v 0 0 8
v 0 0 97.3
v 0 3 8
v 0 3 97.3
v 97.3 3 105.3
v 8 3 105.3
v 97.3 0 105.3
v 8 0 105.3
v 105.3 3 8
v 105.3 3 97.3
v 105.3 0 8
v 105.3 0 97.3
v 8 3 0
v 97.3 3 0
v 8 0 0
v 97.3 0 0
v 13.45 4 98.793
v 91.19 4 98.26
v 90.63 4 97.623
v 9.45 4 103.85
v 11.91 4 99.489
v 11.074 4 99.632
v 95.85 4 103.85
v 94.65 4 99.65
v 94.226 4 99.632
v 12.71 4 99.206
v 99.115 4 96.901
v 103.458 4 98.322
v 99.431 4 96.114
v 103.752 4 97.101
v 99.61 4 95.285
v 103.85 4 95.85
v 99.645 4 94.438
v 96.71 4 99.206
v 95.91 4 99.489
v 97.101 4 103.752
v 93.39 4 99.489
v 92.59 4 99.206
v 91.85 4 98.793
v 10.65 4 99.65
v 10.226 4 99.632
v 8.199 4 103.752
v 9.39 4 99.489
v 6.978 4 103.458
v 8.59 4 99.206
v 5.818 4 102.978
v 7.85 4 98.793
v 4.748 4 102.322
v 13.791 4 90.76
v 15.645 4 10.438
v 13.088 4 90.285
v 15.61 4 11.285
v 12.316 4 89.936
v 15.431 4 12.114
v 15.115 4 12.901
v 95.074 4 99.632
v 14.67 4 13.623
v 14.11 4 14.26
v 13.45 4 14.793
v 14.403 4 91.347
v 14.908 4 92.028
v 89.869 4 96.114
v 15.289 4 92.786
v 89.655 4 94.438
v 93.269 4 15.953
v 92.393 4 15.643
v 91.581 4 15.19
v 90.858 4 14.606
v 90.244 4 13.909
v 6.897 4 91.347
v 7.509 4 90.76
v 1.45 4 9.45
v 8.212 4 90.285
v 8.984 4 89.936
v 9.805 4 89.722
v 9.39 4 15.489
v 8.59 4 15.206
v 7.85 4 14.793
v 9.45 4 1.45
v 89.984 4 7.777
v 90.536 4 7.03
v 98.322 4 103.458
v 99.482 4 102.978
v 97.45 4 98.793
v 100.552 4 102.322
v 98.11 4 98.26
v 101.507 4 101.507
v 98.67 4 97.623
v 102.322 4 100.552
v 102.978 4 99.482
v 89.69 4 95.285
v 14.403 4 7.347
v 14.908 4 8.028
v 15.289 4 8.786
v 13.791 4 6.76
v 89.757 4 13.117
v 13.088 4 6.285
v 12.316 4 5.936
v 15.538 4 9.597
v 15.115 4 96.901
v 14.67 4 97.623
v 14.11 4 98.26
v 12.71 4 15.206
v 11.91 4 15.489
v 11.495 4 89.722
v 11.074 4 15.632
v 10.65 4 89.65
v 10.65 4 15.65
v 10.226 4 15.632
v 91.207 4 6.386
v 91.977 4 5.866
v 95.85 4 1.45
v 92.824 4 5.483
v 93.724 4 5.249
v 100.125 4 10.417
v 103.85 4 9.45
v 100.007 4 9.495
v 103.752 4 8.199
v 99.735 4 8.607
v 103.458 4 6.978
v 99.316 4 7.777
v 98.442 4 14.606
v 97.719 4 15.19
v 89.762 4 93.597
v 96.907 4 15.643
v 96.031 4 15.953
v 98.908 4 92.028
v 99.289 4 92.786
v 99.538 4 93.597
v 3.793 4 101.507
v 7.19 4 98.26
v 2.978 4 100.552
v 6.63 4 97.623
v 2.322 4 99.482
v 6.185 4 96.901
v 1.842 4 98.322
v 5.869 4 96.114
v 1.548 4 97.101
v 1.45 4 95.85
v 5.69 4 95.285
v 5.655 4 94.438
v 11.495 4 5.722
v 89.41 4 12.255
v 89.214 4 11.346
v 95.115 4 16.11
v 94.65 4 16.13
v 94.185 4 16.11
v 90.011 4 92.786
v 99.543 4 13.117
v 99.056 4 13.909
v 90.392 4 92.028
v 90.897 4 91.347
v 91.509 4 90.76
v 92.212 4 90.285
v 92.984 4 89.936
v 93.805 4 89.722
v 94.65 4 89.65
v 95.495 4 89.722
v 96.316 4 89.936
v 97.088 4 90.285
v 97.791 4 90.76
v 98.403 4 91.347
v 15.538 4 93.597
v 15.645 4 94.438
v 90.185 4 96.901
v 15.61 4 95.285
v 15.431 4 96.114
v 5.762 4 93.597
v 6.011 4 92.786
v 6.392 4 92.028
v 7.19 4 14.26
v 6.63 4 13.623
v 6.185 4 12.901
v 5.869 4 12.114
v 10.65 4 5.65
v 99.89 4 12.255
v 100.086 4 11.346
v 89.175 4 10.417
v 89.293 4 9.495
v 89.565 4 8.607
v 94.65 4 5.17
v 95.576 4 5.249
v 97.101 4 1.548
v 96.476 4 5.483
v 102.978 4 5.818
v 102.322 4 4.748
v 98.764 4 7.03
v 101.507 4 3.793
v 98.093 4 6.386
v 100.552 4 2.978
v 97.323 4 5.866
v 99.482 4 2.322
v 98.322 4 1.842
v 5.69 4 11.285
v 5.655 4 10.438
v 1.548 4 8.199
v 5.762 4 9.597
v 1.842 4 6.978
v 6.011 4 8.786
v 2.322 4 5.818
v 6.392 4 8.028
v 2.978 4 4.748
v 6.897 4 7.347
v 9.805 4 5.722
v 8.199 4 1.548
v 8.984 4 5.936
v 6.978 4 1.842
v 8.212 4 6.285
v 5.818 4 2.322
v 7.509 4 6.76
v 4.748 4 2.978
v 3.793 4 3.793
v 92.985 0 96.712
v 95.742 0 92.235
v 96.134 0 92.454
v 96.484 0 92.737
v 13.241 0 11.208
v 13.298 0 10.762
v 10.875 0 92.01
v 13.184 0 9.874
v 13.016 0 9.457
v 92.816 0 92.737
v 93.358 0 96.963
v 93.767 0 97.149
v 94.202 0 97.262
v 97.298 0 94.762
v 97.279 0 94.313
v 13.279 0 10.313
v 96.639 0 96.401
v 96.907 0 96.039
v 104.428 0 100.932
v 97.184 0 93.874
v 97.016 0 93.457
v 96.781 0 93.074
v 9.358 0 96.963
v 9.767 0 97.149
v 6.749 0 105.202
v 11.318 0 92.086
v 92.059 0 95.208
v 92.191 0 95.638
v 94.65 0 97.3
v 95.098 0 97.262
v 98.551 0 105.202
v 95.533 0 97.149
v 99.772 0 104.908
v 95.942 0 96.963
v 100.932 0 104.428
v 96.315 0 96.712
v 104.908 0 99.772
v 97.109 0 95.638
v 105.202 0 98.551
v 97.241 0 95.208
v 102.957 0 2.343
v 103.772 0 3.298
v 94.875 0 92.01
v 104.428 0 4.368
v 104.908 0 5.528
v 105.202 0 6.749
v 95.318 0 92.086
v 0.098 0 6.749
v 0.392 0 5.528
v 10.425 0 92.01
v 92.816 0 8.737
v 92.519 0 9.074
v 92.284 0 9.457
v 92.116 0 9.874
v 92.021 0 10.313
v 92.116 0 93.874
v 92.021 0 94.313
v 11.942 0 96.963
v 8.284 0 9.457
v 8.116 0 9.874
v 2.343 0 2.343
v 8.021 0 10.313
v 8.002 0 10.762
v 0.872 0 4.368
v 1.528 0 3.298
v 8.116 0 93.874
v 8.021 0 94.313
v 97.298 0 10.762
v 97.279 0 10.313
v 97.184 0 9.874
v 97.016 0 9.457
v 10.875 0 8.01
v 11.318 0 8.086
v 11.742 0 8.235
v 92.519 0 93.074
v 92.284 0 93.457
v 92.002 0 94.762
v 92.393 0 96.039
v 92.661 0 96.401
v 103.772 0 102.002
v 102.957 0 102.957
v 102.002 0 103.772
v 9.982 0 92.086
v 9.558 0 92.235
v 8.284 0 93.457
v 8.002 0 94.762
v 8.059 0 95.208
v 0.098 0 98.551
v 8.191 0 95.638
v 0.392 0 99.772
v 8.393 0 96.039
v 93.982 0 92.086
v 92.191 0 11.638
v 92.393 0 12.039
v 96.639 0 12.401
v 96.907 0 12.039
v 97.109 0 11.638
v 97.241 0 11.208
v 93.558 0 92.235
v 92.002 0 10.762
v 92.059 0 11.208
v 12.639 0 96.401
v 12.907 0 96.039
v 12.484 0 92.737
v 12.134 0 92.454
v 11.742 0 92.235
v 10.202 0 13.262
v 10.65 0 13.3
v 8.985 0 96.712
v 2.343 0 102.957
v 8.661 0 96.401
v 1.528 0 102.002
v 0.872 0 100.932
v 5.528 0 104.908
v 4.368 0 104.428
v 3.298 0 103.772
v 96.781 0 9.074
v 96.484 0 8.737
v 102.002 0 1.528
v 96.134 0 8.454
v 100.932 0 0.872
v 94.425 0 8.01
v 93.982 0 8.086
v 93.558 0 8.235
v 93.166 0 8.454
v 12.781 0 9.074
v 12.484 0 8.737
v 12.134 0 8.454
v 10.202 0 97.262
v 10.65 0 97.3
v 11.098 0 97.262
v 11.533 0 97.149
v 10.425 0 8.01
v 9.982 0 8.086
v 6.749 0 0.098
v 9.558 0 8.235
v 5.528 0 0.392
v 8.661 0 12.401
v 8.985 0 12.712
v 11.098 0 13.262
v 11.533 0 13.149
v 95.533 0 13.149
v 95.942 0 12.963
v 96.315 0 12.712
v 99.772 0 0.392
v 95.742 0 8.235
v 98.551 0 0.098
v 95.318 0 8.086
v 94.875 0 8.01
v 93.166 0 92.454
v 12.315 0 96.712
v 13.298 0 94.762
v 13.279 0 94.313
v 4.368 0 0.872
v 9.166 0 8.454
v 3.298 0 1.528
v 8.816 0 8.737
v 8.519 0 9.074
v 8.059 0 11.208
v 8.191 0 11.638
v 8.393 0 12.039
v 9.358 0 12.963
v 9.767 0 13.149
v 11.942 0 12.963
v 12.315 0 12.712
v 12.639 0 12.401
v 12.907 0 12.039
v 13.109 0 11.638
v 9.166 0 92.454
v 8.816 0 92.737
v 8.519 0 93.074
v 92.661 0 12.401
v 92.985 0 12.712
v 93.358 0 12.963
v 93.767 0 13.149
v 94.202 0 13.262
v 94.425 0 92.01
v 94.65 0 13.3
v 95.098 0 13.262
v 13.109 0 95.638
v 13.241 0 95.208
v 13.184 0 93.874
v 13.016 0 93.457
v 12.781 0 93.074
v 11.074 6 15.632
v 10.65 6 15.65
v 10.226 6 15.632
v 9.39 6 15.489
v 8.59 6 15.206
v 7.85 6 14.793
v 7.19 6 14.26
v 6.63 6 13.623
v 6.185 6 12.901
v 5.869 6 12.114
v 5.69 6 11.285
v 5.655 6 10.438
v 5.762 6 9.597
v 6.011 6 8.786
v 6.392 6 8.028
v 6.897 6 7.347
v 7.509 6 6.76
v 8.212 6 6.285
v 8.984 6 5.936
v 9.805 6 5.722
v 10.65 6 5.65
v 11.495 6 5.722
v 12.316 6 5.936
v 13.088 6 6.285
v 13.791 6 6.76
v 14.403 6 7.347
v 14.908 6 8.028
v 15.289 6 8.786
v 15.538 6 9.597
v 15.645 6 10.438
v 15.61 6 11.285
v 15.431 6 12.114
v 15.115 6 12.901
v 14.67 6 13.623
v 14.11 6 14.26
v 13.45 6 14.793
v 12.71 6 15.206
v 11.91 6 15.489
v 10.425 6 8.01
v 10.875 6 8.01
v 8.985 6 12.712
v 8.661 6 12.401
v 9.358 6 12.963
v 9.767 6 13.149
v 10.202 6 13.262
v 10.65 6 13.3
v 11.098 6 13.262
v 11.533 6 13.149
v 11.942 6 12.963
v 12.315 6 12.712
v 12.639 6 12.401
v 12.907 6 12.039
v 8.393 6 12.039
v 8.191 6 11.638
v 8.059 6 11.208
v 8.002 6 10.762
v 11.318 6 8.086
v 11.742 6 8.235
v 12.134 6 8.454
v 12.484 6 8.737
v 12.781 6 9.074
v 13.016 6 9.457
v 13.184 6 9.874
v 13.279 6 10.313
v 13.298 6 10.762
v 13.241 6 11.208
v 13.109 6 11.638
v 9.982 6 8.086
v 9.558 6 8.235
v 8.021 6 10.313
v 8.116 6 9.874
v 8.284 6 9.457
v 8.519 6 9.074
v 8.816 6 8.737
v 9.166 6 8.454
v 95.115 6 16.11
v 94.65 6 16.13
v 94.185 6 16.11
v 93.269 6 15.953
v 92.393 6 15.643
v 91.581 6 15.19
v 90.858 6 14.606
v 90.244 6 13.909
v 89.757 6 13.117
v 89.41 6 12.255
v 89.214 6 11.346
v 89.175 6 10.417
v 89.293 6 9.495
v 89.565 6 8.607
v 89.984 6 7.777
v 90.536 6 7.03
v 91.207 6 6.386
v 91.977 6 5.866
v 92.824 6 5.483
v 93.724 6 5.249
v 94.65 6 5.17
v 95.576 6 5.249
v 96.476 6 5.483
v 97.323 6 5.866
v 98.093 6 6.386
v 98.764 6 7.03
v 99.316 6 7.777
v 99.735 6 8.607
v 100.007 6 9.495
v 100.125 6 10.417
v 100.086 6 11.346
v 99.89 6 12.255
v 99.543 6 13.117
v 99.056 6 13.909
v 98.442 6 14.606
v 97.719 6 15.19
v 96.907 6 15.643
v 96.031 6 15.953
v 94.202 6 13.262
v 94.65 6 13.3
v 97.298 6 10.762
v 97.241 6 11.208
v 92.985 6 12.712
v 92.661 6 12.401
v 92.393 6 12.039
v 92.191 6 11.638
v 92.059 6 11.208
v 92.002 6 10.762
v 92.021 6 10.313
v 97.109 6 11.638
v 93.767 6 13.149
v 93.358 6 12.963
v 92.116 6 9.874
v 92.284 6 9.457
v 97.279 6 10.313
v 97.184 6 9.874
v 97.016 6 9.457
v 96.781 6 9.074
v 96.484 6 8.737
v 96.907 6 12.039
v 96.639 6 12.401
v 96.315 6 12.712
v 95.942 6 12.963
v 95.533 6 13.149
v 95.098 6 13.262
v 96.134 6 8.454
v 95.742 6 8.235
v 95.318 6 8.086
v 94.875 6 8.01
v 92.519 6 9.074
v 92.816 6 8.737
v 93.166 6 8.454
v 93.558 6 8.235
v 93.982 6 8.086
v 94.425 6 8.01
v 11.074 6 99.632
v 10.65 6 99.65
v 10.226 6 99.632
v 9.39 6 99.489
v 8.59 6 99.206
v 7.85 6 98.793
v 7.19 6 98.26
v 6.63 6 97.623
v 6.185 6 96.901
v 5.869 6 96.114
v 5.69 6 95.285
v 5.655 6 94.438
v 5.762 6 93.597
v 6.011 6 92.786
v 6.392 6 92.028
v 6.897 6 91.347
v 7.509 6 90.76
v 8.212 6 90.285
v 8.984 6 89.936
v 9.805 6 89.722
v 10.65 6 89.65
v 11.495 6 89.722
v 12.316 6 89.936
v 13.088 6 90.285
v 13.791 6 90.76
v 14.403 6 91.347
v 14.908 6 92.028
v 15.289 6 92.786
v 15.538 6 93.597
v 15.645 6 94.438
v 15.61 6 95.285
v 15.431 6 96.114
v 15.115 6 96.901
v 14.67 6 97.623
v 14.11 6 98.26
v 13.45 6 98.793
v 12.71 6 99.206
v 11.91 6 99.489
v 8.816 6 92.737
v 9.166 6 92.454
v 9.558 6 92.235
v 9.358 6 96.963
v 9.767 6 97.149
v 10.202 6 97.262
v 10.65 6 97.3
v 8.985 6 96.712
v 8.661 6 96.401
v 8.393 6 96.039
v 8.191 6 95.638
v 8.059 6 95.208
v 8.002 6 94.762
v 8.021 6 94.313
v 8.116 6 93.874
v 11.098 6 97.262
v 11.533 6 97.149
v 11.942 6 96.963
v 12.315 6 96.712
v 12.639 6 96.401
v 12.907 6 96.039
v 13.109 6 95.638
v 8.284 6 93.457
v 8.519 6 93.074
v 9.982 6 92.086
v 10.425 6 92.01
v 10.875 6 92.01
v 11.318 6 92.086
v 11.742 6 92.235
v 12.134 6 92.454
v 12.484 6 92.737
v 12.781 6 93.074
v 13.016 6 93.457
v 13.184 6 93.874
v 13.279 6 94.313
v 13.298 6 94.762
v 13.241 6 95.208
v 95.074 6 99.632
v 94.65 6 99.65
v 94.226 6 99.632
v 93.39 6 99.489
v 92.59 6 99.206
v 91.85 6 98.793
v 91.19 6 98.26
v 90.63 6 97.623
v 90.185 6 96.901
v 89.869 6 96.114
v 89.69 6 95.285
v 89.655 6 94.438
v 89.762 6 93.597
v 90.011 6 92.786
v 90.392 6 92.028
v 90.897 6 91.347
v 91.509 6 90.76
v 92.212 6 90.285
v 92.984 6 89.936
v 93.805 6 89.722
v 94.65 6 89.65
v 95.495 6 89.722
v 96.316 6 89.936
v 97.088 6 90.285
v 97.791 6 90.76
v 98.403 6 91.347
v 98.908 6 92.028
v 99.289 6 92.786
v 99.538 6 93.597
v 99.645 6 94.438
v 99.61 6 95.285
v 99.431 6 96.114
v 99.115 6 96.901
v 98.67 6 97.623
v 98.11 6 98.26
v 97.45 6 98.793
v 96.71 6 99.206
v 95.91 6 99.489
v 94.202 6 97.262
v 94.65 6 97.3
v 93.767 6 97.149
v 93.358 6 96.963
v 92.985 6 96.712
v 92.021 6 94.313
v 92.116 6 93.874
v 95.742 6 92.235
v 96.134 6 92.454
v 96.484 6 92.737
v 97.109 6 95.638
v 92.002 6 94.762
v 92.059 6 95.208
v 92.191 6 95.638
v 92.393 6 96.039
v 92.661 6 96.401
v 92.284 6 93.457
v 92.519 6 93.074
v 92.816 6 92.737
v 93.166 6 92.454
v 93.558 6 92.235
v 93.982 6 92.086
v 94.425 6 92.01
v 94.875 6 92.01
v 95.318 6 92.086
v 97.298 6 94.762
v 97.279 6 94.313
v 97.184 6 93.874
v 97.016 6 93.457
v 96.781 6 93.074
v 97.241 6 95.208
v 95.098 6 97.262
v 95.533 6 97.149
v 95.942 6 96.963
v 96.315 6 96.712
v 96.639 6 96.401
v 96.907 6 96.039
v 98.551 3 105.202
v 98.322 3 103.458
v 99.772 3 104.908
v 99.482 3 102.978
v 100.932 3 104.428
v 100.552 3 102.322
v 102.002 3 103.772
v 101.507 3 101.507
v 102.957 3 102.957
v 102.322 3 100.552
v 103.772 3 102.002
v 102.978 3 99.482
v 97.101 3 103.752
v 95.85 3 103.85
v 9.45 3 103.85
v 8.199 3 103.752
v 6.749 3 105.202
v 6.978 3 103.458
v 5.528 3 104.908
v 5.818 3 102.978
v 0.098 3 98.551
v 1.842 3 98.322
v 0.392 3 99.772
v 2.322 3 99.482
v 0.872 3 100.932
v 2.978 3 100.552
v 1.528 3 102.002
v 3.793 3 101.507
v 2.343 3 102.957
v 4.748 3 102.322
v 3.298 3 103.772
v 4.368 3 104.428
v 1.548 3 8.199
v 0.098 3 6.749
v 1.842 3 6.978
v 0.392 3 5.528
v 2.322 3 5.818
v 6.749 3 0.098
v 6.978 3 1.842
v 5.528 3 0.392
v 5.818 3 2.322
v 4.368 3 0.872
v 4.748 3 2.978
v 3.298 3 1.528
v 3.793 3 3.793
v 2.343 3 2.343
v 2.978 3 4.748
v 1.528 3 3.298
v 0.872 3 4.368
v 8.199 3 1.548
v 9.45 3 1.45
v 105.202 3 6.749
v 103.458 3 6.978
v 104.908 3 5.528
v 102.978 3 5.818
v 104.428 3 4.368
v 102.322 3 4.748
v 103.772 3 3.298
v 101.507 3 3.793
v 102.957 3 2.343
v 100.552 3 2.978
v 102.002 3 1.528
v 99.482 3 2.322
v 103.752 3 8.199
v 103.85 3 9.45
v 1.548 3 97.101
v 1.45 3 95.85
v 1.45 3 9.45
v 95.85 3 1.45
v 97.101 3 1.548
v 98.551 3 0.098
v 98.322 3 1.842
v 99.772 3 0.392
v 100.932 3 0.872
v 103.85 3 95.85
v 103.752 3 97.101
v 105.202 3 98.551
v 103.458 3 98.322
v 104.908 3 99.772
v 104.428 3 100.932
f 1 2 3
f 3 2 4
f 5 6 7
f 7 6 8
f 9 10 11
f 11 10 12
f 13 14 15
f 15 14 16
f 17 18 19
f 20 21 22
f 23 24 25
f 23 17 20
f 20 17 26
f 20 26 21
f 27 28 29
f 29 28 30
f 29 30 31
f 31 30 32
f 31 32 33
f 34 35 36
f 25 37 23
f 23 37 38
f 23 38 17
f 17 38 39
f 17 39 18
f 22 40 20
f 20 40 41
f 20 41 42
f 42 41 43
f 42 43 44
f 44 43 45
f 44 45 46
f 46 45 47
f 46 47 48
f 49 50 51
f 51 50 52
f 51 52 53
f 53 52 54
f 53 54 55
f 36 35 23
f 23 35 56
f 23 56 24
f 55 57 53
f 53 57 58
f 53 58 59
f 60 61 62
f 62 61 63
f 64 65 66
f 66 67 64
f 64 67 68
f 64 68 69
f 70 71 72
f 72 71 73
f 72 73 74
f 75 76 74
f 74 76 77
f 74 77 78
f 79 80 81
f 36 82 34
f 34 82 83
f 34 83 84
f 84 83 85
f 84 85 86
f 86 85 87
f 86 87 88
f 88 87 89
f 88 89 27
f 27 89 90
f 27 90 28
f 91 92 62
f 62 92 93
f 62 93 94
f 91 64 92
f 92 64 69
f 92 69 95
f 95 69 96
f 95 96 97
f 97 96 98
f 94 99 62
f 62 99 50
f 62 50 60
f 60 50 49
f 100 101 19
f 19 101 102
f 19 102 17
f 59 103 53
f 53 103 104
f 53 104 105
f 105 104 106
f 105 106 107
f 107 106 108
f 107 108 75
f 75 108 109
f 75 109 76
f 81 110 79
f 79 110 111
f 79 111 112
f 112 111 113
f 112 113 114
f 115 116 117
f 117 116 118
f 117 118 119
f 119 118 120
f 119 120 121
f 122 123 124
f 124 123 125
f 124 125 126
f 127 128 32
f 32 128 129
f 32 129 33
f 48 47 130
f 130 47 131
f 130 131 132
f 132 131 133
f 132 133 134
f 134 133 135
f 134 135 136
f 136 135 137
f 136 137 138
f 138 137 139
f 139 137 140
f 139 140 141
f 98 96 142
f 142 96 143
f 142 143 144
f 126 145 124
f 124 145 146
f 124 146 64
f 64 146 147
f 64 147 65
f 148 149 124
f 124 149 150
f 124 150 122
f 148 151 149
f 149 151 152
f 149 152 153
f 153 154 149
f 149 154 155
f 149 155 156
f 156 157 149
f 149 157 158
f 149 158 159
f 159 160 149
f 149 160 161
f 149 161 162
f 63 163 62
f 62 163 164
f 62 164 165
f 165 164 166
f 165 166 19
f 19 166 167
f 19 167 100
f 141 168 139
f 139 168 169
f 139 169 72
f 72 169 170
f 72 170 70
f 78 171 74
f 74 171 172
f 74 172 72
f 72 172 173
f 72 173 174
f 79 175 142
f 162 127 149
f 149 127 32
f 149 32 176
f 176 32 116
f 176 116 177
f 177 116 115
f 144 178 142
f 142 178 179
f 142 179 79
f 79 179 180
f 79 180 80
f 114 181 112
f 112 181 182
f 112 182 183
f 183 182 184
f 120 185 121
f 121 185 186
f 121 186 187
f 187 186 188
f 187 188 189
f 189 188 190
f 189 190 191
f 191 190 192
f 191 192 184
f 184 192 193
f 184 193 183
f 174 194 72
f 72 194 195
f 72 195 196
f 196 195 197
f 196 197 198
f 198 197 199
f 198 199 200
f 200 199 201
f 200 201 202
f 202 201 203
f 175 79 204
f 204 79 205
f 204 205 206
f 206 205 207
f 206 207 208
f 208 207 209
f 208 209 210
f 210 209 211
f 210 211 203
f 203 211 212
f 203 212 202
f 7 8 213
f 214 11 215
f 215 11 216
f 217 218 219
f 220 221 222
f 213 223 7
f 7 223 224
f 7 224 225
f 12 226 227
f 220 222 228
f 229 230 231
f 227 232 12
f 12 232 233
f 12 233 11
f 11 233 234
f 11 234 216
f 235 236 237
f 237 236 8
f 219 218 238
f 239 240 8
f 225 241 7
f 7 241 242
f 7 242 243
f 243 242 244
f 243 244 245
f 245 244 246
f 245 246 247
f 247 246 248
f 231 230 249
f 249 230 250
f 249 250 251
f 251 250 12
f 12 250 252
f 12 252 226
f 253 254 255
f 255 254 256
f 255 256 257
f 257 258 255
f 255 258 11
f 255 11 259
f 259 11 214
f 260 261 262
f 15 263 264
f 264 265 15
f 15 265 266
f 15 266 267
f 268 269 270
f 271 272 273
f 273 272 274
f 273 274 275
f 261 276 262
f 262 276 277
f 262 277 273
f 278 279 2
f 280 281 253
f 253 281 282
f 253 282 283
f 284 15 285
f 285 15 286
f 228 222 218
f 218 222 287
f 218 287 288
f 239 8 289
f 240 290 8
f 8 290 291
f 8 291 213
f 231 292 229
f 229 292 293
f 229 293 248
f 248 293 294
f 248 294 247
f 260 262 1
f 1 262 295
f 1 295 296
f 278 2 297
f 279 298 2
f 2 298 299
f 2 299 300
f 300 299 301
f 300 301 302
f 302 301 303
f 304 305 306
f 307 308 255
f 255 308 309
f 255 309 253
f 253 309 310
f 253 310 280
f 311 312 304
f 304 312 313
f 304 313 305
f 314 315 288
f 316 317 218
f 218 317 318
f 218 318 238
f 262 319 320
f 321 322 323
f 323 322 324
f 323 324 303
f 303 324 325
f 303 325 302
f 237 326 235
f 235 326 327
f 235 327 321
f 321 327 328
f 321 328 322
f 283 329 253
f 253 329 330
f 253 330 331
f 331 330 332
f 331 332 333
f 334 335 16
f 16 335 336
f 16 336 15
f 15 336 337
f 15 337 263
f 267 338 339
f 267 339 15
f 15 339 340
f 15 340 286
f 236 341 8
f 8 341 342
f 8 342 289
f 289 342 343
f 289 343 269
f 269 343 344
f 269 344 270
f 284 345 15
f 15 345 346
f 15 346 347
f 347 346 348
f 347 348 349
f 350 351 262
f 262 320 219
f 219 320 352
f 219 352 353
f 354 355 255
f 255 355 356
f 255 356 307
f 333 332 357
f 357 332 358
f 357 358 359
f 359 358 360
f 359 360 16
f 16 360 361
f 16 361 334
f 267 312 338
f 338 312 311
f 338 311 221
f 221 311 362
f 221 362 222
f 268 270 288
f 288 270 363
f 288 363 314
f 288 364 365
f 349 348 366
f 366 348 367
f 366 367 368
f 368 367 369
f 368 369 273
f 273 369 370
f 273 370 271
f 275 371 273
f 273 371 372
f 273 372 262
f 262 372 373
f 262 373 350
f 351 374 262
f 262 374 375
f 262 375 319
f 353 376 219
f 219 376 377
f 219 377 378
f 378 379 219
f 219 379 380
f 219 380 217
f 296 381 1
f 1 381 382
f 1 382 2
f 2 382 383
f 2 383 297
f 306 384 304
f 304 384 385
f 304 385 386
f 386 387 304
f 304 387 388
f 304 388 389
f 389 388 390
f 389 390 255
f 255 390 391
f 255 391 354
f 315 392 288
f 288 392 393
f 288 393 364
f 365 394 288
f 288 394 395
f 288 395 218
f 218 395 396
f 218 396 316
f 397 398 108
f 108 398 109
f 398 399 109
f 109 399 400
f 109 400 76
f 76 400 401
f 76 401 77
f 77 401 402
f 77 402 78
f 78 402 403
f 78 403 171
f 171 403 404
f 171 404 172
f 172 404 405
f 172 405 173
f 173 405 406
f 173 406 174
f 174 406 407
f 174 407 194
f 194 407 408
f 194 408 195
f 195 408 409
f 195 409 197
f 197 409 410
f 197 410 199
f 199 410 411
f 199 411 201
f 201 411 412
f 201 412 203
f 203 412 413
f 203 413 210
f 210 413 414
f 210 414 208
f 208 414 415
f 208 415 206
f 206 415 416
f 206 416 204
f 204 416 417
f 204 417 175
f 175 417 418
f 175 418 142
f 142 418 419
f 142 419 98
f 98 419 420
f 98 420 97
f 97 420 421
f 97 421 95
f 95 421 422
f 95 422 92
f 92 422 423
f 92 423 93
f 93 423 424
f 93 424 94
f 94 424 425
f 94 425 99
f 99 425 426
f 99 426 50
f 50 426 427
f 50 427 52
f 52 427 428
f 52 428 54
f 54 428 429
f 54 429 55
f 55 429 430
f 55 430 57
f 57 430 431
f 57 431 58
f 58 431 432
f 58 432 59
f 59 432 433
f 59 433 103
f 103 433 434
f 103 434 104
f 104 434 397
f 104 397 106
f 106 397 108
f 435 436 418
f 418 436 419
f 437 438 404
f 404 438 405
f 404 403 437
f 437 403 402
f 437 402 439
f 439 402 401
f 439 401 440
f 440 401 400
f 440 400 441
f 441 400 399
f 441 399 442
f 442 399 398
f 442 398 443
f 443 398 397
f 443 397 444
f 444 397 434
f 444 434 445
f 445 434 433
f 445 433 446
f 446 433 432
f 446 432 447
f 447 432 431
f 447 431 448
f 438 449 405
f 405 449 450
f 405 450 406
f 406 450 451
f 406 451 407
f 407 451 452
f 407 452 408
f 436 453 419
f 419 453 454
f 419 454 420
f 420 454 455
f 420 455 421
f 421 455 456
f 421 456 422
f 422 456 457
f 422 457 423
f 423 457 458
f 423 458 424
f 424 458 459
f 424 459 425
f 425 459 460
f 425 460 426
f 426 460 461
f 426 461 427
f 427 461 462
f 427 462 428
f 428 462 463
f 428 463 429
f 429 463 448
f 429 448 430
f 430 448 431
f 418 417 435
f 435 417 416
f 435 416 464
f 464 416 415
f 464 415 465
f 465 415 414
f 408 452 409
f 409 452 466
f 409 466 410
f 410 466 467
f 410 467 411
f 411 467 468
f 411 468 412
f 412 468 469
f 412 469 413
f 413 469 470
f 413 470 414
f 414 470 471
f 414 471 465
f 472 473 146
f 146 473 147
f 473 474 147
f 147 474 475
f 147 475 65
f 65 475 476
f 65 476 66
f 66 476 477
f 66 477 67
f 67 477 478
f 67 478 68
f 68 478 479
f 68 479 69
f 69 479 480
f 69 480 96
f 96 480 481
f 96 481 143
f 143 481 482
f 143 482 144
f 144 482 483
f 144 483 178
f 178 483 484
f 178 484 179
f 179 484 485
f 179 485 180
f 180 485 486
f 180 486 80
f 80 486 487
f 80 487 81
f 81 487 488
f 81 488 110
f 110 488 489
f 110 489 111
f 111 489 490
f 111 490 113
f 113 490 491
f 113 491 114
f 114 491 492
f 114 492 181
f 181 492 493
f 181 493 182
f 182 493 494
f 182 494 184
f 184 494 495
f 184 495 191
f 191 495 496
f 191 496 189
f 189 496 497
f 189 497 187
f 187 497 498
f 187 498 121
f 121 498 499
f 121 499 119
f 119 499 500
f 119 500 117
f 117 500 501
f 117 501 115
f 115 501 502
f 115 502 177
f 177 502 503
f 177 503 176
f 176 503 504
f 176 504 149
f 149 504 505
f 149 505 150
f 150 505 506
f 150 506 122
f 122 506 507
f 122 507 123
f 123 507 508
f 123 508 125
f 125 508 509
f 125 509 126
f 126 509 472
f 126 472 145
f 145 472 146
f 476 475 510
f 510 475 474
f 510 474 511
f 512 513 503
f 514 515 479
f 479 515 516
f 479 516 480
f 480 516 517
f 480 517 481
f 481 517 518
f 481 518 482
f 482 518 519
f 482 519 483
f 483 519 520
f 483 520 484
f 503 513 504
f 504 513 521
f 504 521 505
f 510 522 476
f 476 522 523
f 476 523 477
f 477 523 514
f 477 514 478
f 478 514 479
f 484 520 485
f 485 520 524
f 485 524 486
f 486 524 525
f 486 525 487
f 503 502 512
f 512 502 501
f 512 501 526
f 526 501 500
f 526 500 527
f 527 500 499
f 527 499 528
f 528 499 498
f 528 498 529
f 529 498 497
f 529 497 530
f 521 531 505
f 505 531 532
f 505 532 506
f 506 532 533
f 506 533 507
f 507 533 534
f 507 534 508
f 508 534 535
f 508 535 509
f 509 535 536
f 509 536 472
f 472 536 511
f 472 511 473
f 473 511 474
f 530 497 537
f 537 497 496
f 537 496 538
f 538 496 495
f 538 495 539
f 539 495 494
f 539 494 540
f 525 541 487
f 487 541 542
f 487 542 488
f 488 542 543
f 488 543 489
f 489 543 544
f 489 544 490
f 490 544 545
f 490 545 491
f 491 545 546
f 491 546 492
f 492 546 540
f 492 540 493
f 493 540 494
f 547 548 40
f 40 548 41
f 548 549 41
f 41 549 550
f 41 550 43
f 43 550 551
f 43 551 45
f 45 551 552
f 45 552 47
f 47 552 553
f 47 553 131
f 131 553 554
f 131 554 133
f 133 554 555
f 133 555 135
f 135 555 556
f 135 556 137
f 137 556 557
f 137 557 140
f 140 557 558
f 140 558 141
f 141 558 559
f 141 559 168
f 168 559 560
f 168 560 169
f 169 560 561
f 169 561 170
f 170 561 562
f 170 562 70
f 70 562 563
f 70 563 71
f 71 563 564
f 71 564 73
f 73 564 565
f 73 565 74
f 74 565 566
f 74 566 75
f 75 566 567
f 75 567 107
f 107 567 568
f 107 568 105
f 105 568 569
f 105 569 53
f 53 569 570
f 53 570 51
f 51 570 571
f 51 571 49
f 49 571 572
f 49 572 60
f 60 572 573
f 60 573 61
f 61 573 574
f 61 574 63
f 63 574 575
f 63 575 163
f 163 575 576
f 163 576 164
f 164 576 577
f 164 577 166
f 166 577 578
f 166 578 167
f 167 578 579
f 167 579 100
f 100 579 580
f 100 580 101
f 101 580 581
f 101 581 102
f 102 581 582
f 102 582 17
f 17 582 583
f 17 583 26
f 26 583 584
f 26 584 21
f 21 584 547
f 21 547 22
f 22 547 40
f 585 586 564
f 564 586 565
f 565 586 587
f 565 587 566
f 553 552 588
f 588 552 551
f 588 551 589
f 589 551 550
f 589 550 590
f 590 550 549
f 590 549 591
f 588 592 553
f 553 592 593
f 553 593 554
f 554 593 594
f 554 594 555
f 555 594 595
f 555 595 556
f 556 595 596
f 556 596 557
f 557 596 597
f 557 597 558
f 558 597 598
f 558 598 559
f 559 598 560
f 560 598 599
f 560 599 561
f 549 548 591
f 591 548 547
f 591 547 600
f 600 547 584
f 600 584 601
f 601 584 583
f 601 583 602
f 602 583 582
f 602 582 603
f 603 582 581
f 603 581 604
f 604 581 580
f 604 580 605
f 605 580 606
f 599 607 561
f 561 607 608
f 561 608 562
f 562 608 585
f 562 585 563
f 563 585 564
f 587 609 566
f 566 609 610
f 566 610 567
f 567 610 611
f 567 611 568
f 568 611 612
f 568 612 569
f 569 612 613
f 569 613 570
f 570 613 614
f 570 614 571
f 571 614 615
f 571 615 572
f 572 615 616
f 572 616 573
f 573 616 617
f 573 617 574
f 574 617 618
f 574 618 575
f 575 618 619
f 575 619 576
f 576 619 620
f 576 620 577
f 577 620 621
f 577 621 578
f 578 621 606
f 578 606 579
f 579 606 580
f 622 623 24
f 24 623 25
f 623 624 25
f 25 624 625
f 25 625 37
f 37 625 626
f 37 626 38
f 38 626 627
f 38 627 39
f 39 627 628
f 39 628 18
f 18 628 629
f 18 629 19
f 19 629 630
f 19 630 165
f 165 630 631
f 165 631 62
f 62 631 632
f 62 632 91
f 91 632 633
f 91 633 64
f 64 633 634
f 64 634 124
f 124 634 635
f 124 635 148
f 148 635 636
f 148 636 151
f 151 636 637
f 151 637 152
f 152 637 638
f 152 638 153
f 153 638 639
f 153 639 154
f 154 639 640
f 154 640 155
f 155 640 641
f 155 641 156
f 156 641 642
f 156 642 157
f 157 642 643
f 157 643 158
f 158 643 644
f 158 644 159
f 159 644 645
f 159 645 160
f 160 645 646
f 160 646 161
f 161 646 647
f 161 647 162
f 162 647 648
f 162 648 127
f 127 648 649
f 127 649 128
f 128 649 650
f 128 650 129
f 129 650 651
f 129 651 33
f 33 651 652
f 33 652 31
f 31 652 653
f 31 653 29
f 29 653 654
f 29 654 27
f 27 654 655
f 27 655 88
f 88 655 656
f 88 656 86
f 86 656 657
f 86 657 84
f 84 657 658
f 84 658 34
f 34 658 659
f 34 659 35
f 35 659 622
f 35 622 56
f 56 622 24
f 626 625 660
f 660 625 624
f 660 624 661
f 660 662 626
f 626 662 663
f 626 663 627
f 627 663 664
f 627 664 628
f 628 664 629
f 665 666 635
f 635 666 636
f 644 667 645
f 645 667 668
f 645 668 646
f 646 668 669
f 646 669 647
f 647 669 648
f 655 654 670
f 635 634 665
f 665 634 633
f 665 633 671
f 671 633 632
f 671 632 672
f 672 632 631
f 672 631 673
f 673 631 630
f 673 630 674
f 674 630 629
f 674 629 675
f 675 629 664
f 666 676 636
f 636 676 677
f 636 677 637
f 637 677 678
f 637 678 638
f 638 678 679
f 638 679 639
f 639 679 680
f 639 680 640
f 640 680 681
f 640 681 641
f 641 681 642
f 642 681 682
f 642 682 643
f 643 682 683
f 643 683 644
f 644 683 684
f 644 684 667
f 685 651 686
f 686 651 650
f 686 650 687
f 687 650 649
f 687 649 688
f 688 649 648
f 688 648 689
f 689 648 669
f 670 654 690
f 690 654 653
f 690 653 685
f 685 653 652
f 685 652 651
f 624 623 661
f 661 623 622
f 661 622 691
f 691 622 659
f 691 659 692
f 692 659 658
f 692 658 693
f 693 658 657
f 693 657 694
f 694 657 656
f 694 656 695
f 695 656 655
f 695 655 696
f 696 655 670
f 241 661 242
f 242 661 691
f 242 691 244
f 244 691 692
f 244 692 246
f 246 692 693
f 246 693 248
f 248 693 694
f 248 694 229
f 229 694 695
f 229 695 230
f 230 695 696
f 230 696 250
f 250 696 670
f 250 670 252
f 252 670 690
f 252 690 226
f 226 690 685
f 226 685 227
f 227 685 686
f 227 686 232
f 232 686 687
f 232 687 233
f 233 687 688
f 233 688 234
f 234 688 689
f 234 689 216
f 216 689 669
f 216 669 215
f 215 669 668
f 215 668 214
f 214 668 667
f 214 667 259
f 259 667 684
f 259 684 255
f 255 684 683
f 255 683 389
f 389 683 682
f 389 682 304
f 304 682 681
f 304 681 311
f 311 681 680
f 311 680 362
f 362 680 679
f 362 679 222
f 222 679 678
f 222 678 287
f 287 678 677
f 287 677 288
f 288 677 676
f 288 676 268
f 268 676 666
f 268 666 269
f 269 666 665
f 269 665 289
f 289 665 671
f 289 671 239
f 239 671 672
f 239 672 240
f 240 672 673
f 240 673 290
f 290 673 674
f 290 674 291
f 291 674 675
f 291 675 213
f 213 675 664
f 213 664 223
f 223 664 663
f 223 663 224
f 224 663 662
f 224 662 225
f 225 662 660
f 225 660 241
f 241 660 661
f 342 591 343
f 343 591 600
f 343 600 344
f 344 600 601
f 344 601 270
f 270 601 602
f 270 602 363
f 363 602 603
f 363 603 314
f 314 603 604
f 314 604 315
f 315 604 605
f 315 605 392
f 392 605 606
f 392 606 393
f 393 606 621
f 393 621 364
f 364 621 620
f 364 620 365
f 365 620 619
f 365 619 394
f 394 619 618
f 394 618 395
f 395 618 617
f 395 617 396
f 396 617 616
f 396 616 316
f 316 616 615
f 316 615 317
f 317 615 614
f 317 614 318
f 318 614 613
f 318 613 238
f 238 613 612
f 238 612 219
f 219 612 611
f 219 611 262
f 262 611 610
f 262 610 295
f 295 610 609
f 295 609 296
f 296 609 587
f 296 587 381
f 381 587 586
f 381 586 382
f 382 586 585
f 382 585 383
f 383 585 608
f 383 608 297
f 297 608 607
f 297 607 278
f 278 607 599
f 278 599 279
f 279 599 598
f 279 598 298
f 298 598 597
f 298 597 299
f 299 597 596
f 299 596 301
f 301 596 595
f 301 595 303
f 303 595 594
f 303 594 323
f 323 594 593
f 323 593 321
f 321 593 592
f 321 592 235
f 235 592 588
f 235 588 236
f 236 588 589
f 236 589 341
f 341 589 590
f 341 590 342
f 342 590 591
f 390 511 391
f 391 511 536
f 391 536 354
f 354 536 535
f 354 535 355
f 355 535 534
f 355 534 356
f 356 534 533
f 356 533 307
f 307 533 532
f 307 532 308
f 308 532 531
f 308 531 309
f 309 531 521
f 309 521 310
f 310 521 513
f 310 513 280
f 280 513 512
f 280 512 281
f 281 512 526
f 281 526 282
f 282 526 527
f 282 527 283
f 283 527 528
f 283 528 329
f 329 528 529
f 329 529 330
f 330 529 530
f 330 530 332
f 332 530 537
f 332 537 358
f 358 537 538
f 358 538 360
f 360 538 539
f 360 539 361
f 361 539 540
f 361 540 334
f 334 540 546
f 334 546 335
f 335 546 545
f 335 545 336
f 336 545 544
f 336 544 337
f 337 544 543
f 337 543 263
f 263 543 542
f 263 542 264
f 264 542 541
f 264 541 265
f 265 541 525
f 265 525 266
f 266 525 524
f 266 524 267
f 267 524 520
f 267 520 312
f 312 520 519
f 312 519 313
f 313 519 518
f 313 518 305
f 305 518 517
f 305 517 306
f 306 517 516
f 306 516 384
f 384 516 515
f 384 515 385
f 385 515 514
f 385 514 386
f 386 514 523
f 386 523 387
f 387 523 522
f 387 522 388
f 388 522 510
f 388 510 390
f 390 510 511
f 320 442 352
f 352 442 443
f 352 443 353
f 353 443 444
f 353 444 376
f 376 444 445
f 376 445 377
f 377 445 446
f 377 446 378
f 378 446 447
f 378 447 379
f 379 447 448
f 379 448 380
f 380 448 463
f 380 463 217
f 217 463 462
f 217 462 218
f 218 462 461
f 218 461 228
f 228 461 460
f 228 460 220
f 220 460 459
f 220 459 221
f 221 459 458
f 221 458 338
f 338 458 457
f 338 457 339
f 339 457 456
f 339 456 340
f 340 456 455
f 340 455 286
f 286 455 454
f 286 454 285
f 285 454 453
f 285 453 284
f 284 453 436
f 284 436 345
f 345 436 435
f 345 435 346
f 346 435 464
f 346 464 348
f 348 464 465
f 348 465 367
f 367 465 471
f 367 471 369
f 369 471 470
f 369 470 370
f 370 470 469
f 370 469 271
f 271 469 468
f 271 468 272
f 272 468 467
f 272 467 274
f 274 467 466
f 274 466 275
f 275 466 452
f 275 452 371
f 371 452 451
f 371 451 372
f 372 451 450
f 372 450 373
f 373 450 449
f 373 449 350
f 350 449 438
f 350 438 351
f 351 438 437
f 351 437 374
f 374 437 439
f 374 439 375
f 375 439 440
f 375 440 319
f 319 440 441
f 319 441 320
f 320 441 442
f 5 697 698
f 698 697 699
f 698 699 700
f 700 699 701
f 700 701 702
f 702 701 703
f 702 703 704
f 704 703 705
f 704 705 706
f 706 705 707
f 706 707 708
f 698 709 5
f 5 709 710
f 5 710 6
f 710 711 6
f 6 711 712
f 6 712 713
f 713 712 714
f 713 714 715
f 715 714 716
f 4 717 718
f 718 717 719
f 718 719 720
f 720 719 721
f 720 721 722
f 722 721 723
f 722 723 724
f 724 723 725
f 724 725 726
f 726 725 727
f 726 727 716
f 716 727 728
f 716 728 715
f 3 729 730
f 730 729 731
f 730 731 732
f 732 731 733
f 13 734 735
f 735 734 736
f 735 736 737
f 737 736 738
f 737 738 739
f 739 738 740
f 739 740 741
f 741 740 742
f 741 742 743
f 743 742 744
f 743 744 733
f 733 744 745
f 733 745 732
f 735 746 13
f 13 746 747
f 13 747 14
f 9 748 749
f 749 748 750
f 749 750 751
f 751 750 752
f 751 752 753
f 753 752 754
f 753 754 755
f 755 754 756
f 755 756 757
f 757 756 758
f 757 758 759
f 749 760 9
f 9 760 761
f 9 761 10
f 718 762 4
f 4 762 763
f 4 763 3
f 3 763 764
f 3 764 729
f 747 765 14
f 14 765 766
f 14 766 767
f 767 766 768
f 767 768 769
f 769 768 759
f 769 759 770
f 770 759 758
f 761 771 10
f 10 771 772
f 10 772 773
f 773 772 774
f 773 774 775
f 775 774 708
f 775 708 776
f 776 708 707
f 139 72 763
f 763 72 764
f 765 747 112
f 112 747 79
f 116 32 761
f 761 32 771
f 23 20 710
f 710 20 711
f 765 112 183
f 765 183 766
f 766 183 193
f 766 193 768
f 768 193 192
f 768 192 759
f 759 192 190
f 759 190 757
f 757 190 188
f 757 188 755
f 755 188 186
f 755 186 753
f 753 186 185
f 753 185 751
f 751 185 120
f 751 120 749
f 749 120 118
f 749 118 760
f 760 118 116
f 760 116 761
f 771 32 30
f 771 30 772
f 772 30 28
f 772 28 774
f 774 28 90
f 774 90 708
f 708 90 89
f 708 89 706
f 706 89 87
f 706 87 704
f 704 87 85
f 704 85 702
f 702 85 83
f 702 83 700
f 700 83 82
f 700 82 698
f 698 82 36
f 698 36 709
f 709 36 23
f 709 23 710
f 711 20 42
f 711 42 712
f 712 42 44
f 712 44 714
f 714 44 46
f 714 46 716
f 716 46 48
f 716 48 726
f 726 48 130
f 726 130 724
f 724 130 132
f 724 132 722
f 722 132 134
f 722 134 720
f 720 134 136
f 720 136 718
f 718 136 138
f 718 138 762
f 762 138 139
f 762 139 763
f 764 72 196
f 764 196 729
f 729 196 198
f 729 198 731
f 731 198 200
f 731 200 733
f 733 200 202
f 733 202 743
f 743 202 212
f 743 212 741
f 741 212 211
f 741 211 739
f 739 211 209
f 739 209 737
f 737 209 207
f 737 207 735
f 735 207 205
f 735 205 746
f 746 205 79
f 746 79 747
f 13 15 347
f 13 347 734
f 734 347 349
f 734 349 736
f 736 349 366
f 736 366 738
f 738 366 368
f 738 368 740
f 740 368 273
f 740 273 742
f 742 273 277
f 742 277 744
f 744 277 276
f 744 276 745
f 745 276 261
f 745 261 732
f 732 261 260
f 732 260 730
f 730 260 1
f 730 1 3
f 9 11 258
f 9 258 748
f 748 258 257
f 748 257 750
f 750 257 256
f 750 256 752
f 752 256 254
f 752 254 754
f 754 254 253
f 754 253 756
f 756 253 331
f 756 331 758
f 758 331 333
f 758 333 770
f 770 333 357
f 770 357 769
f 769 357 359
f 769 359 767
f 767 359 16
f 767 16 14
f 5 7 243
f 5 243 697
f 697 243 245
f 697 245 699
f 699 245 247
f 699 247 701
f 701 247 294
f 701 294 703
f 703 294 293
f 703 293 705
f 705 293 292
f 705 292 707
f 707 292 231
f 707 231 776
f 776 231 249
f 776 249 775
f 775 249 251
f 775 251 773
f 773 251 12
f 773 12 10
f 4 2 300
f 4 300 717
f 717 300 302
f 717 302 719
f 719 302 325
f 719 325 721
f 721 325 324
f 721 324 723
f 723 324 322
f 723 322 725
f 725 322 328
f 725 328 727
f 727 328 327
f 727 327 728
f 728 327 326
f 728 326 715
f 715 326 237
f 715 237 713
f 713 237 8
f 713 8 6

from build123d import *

# Parameters (mm, degrees)
BASEPLATE_W         = 105.3
BASEPLATE_H         = 105.3
BOSS_EXTRUDE1_DEPTH = 4
STANDS_R            = 5
STANDS_R_2          = 5.479963535
BOSS_EXTRUDE3_DEPTH = 2
CUT_EXTRUDE1_REACH  = 151.038
MOUNTING_HOLES_R    = 2.65
EDGE_CUTOUT_W       = 105.3
EDGE_CUTOUT_H       = 105.3
EDGE_CUTOUT_W_2     = 102.4
EDGE_CUTOUT_H_2     = 102.4
CUT_EXTRUDE2_DEPTH  = 1
FILLET_EDGES_R      = 8


with BuildPart() as part:
    # Baseplate → Boss-Extrude1 (new body)
    with BuildSketch(Plane(origin=(0, 0, 0), x_dir=(1, 0, 0), z_dir=(0, 1, 0))):
        with Locations((52.65, -52.65)):
            Rectangle(BASEPLATE_W, BASEPLATE_H)
    extrude(amount=BOSS_EXTRUDE1_DEPTH)

    # Stands → Boss-Extrude3 (add)
    with BuildSketch(Plane(origin=(0, 4, 0), x_dir=(1, 0, 0), z_dir=(0, 1, 0))):
        with Locations(Location((10.65, -10.65, 0), (0, 0, 270))):
            Circle(STANDS_R)
        with Locations(Location((94.65, -10.65, 0), (0, 0, 270))):
            Circle(STANDS_R_2)
        with Locations(Location((10.65, -94.65, 0), (0, 0, 270))):
            Circle(STANDS_R)
        with Locations(Location((94.65, -94.65, 0), (0, 0, 270))):
            Circle(STANDS_R)
    extrude(amount=BOSS_EXTRUDE3_DEPTH)

    # Mounting_Holes → Cut-Extrude1 (cut, up to next)
    with BuildSketch(Plane(origin=(0, 6, 0), x_dir=(1, 0, 0), z_dir=(0, 1, 0)), mode=Mode.PRIVATE) as cut_extrude1_sk1:
        with Locations(Location((10.65, -10.65, 0), (0, 0, 270))):
            Circle(MOUNTING_HOLES_R)
    cut_extrude1_tool1 = extrude(cut_extrude1_sk1.sketch, amount=-CUT_EXTRUDE1_REACH, mode=Mode.PRIVATE) & part.part
    # Mounting_Holes → Cut-Extrude1 (cut, up to next)
    with BuildSketch(Plane(origin=(0, 6, 0), x_dir=(1, 0, 0), z_dir=(0, 1, 0)), mode=Mode.PRIVATE) as cut_extrude1_sk2:
        with Locations(Location((94.65, -10.65, 0), (0, 0, 270))):
            Circle(MOUNTING_HOLES_R)
    cut_extrude1_tool2 = extrude(cut_extrude1_sk2.sketch, amount=-CUT_EXTRUDE1_REACH, mode=Mode.PRIVATE) & part.part
    # Mounting_Holes → Cut-Extrude1 (cut, up to next)
    with BuildSketch(Plane(origin=(0, 6, 0), x_dir=(1, 0, 0), z_dir=(0, 1, 0)), mode=Mode.PRIVATE) as cut_extrude1_sk3:
        with Locations(Location((94.65, -94.65, 0), (0, 0, 270))):
            Circle(MOUNTING_HOLES_R)
    cut_extrude1_tool3 = extrude(cut_extrude1_sk3.sketch, amount=-CUT_EXTRUDE1_REACH, mode=Mode.PRIVATE) & part.part
    # Mounting_Holes → Cut-Extrude1 (cut, up to next)
    with BuildSketch(Plane(origin=(0, 6, 0), x_dir=(1, 0, 0), z_dir=(0, 1, 0)), mode=Mode.PRIVATE) as cut_extrude1_sk4:
        with Locations(Location((10.65, -94.65, 0), (0, 0, 270))):
            Circle(MOUNTING_HOLES_R)
    cut_extrude1_tool4 = extrude(cut_extrude1_sk4.sketch, amount=-CUT_EXTRUDE1_REACH, mode=Mode.PRIVATE) & part.part
    add(cut_extrude1_tool1.solids().sort_by_distance((10.65, 6, 10.65))[0], mode=Mode.SUBTRACT)
    add(cut_extrude1_tool2.solids().sort_by_distance((94.65, 6, 10.65))[0], mode=Mode.SUBTRACT)
    add(cut_extrude1_tool3.solids().sort_by_distance((94.65, 6, 94.65))[0], mode=Mode.SUBTRACT)
    add(cut_extrude1_tool4.solids().sort_by_distance((10.65, 6, 94.65))[0], mode=Mode.SUBTRACT)

    # Edge_Cutout → Cut-Extrude2 (cut)
    with BuildSketch(Plane(origin=(0, 4, 0), x_dir=(1, 0, 0), z_dir=(0, 1, 0))):
        with Locations((52.65, -52.65)):
            Rectangle(EDGE_CUTOUT_W, EDGE_CUTOUT_H)
        with Locations((52.65, -52.65)):
            Rectangle(EDGE_CUTOUT_W_2, EDGE_CUTOUT_H_2, mode=Mode.SUBTRACT)
    extrude(amount=-CUT_EXTRUDE2_DEPTH, mode=Mode.SUBTRACT)

    # Fillet_Edges
    fillet_edges_edges = [part.edges().sort_by_distance(p)[0] for p in [
        (0, 1.5, 0),
        (105.3, 1.5, 0),
        (105.3, 1.5, 105.3),
        (0, 1.5, 105.3),
        (1.45, 3.5, 1.45),
        (103.85, 3.5, 1.45),
        (103.85, 3.5, 103.85),
        (1.45, 3.5, 103.85),
    ]]
    fillet(fillet_edges_edges, radius=FILLET_EDGES_R)


solid = part.part
